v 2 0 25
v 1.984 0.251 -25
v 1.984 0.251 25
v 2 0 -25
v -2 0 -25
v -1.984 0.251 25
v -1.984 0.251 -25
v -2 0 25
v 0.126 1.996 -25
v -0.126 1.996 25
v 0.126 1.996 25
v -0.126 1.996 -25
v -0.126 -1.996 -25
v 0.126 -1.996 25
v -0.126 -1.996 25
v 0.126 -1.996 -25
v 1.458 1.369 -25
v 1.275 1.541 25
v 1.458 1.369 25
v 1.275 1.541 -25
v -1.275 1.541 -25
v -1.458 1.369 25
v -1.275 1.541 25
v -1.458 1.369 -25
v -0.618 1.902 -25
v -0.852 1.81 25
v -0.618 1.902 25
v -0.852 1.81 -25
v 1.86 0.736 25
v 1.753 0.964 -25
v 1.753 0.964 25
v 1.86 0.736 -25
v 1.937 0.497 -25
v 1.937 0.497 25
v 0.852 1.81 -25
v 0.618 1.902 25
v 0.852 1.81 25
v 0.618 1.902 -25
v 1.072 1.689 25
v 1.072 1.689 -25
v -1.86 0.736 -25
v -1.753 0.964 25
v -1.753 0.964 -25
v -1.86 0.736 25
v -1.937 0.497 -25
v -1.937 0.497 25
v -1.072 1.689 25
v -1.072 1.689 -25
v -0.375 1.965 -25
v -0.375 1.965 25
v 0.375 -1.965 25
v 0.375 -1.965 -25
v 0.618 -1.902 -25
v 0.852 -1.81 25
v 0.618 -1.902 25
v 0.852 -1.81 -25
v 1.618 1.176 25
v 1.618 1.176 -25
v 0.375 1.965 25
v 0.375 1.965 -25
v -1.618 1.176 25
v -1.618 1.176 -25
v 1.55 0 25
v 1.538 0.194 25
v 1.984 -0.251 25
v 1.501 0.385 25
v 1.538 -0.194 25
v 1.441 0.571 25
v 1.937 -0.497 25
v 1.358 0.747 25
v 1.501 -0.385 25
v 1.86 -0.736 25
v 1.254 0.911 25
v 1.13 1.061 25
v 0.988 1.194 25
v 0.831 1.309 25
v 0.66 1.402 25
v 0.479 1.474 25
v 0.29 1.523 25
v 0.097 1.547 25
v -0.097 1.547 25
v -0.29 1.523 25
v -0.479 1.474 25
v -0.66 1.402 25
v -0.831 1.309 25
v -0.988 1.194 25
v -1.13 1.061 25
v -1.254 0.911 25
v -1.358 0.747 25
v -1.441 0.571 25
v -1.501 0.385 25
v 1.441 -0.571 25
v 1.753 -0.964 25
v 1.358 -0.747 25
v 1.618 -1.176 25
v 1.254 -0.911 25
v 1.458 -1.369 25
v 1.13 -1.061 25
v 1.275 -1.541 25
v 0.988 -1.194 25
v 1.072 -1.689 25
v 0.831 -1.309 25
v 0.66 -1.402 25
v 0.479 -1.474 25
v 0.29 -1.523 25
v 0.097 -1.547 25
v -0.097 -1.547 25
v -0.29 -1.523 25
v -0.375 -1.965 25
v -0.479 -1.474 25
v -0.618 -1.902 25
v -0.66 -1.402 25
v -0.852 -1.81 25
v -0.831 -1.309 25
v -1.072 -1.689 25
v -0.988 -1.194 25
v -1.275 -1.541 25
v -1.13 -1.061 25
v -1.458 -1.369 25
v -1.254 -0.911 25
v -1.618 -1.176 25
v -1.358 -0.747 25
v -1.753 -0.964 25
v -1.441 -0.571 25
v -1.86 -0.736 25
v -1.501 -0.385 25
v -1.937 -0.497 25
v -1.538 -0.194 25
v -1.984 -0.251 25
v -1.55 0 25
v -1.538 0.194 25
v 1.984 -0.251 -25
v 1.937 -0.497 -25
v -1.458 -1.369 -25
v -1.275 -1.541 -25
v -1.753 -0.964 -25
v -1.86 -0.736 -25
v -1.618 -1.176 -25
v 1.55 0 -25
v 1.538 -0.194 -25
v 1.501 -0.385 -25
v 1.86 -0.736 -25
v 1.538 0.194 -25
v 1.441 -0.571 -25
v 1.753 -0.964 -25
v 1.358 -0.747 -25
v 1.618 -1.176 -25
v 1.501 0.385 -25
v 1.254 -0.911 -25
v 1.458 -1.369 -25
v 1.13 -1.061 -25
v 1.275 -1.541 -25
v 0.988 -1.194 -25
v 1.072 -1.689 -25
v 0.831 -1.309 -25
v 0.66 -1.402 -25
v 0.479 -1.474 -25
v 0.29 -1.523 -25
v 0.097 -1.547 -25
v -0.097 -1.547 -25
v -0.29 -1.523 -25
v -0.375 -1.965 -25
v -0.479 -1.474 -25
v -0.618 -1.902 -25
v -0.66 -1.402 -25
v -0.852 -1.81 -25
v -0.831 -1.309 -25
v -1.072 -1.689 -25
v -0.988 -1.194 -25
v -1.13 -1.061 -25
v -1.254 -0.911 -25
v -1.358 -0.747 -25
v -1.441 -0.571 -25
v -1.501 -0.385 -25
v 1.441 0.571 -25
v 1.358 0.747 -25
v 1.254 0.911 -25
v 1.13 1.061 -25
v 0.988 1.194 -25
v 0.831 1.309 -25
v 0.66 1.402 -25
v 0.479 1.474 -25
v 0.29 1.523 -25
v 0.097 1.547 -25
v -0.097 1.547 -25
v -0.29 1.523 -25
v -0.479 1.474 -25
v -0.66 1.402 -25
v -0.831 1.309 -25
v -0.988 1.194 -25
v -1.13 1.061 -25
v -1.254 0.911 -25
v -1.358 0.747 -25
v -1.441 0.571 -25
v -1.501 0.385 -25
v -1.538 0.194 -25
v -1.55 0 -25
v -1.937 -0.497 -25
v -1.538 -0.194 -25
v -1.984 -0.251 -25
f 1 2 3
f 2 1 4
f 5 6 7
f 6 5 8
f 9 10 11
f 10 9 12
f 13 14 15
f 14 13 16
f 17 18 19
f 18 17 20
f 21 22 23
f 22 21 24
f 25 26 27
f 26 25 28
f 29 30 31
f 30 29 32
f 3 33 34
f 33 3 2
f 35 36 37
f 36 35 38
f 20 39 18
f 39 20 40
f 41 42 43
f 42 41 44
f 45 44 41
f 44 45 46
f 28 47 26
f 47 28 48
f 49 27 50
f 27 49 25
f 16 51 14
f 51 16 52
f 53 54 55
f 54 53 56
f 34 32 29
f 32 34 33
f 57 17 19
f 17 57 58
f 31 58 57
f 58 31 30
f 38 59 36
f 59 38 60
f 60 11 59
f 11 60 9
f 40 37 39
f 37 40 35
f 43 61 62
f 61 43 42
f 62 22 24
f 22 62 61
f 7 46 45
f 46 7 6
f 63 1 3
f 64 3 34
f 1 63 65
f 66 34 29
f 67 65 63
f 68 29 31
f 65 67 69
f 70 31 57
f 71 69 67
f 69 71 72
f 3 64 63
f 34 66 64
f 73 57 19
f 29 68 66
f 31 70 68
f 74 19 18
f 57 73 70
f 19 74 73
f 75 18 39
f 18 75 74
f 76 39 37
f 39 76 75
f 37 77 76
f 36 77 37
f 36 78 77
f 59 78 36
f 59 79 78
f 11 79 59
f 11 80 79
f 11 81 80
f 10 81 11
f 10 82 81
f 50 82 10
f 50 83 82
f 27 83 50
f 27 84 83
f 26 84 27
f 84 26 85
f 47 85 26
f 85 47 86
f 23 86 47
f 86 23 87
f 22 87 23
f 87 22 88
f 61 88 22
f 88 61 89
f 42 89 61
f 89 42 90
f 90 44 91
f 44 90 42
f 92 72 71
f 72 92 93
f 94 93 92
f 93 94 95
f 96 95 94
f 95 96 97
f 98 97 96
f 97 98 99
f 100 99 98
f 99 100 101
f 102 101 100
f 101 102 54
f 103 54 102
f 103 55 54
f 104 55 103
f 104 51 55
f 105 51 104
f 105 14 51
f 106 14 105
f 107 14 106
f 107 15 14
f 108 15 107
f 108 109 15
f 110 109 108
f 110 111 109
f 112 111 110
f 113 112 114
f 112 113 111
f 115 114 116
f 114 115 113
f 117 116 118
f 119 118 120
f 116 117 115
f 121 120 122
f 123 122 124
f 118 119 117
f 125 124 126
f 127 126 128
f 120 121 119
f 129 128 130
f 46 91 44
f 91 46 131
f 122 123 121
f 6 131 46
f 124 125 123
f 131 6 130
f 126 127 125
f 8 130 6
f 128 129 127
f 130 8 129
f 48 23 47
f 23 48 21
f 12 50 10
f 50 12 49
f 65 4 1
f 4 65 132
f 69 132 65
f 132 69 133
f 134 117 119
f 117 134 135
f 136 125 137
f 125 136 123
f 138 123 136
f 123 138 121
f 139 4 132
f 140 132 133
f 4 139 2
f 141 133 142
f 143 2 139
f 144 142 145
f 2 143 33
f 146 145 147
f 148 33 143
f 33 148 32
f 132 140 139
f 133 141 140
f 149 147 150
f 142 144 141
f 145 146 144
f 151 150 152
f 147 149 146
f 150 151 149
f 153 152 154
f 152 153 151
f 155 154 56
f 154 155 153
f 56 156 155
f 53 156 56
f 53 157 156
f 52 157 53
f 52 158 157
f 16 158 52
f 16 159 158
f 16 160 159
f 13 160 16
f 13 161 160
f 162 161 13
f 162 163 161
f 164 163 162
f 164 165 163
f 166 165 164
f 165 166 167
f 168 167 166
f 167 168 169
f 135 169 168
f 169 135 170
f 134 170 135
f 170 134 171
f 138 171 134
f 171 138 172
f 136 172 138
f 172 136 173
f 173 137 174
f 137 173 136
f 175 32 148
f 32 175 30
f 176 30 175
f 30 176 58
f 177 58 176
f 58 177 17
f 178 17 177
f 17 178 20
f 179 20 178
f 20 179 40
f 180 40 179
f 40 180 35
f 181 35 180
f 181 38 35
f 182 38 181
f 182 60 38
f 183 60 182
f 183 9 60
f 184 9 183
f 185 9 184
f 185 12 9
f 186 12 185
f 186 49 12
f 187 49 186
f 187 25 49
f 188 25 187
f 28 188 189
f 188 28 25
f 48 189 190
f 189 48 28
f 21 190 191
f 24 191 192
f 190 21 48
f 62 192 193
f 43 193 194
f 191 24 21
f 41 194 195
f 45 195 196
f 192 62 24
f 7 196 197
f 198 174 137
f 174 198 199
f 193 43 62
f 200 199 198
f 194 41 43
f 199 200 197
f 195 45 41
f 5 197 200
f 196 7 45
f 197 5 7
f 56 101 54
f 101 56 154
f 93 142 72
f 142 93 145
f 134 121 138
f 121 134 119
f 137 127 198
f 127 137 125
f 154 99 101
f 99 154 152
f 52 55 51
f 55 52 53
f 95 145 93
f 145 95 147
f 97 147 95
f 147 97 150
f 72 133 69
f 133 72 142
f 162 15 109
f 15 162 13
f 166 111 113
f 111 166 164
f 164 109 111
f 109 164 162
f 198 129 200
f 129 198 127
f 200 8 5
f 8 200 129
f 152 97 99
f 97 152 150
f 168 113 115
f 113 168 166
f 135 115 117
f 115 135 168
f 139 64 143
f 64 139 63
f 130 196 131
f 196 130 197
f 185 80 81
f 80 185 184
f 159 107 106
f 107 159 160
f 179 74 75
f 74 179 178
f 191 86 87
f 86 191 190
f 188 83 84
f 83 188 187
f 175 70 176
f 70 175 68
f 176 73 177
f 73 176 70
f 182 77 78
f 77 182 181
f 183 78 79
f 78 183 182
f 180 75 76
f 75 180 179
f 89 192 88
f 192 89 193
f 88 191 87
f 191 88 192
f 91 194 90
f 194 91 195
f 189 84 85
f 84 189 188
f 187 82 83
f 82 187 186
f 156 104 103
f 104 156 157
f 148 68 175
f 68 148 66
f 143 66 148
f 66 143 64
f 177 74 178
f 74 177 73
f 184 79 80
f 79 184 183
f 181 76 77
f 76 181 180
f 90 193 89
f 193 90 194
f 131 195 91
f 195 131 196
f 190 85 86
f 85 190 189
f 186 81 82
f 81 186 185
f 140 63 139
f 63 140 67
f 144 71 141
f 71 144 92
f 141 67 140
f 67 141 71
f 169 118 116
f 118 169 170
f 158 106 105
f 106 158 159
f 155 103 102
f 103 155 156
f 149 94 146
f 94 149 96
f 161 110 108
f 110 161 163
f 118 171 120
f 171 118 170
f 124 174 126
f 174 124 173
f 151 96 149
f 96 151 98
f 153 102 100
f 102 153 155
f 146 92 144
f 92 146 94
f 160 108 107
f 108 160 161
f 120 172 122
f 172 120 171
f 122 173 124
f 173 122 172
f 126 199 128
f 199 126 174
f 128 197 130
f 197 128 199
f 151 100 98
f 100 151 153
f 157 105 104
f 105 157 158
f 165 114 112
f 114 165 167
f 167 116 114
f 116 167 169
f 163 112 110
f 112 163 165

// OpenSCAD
$fn = 50;


difference() {
	union() {
		translate(v = [0, 0, -25.0000000000]) {
			cylinder(h = 50, r = 2.0000000000);
		}
	}
	union() {
		translate(v = [0, 0, -100.0000000000]) {
			cylinder(h = 200, r = 1.5500000000);
		}
	}
}
